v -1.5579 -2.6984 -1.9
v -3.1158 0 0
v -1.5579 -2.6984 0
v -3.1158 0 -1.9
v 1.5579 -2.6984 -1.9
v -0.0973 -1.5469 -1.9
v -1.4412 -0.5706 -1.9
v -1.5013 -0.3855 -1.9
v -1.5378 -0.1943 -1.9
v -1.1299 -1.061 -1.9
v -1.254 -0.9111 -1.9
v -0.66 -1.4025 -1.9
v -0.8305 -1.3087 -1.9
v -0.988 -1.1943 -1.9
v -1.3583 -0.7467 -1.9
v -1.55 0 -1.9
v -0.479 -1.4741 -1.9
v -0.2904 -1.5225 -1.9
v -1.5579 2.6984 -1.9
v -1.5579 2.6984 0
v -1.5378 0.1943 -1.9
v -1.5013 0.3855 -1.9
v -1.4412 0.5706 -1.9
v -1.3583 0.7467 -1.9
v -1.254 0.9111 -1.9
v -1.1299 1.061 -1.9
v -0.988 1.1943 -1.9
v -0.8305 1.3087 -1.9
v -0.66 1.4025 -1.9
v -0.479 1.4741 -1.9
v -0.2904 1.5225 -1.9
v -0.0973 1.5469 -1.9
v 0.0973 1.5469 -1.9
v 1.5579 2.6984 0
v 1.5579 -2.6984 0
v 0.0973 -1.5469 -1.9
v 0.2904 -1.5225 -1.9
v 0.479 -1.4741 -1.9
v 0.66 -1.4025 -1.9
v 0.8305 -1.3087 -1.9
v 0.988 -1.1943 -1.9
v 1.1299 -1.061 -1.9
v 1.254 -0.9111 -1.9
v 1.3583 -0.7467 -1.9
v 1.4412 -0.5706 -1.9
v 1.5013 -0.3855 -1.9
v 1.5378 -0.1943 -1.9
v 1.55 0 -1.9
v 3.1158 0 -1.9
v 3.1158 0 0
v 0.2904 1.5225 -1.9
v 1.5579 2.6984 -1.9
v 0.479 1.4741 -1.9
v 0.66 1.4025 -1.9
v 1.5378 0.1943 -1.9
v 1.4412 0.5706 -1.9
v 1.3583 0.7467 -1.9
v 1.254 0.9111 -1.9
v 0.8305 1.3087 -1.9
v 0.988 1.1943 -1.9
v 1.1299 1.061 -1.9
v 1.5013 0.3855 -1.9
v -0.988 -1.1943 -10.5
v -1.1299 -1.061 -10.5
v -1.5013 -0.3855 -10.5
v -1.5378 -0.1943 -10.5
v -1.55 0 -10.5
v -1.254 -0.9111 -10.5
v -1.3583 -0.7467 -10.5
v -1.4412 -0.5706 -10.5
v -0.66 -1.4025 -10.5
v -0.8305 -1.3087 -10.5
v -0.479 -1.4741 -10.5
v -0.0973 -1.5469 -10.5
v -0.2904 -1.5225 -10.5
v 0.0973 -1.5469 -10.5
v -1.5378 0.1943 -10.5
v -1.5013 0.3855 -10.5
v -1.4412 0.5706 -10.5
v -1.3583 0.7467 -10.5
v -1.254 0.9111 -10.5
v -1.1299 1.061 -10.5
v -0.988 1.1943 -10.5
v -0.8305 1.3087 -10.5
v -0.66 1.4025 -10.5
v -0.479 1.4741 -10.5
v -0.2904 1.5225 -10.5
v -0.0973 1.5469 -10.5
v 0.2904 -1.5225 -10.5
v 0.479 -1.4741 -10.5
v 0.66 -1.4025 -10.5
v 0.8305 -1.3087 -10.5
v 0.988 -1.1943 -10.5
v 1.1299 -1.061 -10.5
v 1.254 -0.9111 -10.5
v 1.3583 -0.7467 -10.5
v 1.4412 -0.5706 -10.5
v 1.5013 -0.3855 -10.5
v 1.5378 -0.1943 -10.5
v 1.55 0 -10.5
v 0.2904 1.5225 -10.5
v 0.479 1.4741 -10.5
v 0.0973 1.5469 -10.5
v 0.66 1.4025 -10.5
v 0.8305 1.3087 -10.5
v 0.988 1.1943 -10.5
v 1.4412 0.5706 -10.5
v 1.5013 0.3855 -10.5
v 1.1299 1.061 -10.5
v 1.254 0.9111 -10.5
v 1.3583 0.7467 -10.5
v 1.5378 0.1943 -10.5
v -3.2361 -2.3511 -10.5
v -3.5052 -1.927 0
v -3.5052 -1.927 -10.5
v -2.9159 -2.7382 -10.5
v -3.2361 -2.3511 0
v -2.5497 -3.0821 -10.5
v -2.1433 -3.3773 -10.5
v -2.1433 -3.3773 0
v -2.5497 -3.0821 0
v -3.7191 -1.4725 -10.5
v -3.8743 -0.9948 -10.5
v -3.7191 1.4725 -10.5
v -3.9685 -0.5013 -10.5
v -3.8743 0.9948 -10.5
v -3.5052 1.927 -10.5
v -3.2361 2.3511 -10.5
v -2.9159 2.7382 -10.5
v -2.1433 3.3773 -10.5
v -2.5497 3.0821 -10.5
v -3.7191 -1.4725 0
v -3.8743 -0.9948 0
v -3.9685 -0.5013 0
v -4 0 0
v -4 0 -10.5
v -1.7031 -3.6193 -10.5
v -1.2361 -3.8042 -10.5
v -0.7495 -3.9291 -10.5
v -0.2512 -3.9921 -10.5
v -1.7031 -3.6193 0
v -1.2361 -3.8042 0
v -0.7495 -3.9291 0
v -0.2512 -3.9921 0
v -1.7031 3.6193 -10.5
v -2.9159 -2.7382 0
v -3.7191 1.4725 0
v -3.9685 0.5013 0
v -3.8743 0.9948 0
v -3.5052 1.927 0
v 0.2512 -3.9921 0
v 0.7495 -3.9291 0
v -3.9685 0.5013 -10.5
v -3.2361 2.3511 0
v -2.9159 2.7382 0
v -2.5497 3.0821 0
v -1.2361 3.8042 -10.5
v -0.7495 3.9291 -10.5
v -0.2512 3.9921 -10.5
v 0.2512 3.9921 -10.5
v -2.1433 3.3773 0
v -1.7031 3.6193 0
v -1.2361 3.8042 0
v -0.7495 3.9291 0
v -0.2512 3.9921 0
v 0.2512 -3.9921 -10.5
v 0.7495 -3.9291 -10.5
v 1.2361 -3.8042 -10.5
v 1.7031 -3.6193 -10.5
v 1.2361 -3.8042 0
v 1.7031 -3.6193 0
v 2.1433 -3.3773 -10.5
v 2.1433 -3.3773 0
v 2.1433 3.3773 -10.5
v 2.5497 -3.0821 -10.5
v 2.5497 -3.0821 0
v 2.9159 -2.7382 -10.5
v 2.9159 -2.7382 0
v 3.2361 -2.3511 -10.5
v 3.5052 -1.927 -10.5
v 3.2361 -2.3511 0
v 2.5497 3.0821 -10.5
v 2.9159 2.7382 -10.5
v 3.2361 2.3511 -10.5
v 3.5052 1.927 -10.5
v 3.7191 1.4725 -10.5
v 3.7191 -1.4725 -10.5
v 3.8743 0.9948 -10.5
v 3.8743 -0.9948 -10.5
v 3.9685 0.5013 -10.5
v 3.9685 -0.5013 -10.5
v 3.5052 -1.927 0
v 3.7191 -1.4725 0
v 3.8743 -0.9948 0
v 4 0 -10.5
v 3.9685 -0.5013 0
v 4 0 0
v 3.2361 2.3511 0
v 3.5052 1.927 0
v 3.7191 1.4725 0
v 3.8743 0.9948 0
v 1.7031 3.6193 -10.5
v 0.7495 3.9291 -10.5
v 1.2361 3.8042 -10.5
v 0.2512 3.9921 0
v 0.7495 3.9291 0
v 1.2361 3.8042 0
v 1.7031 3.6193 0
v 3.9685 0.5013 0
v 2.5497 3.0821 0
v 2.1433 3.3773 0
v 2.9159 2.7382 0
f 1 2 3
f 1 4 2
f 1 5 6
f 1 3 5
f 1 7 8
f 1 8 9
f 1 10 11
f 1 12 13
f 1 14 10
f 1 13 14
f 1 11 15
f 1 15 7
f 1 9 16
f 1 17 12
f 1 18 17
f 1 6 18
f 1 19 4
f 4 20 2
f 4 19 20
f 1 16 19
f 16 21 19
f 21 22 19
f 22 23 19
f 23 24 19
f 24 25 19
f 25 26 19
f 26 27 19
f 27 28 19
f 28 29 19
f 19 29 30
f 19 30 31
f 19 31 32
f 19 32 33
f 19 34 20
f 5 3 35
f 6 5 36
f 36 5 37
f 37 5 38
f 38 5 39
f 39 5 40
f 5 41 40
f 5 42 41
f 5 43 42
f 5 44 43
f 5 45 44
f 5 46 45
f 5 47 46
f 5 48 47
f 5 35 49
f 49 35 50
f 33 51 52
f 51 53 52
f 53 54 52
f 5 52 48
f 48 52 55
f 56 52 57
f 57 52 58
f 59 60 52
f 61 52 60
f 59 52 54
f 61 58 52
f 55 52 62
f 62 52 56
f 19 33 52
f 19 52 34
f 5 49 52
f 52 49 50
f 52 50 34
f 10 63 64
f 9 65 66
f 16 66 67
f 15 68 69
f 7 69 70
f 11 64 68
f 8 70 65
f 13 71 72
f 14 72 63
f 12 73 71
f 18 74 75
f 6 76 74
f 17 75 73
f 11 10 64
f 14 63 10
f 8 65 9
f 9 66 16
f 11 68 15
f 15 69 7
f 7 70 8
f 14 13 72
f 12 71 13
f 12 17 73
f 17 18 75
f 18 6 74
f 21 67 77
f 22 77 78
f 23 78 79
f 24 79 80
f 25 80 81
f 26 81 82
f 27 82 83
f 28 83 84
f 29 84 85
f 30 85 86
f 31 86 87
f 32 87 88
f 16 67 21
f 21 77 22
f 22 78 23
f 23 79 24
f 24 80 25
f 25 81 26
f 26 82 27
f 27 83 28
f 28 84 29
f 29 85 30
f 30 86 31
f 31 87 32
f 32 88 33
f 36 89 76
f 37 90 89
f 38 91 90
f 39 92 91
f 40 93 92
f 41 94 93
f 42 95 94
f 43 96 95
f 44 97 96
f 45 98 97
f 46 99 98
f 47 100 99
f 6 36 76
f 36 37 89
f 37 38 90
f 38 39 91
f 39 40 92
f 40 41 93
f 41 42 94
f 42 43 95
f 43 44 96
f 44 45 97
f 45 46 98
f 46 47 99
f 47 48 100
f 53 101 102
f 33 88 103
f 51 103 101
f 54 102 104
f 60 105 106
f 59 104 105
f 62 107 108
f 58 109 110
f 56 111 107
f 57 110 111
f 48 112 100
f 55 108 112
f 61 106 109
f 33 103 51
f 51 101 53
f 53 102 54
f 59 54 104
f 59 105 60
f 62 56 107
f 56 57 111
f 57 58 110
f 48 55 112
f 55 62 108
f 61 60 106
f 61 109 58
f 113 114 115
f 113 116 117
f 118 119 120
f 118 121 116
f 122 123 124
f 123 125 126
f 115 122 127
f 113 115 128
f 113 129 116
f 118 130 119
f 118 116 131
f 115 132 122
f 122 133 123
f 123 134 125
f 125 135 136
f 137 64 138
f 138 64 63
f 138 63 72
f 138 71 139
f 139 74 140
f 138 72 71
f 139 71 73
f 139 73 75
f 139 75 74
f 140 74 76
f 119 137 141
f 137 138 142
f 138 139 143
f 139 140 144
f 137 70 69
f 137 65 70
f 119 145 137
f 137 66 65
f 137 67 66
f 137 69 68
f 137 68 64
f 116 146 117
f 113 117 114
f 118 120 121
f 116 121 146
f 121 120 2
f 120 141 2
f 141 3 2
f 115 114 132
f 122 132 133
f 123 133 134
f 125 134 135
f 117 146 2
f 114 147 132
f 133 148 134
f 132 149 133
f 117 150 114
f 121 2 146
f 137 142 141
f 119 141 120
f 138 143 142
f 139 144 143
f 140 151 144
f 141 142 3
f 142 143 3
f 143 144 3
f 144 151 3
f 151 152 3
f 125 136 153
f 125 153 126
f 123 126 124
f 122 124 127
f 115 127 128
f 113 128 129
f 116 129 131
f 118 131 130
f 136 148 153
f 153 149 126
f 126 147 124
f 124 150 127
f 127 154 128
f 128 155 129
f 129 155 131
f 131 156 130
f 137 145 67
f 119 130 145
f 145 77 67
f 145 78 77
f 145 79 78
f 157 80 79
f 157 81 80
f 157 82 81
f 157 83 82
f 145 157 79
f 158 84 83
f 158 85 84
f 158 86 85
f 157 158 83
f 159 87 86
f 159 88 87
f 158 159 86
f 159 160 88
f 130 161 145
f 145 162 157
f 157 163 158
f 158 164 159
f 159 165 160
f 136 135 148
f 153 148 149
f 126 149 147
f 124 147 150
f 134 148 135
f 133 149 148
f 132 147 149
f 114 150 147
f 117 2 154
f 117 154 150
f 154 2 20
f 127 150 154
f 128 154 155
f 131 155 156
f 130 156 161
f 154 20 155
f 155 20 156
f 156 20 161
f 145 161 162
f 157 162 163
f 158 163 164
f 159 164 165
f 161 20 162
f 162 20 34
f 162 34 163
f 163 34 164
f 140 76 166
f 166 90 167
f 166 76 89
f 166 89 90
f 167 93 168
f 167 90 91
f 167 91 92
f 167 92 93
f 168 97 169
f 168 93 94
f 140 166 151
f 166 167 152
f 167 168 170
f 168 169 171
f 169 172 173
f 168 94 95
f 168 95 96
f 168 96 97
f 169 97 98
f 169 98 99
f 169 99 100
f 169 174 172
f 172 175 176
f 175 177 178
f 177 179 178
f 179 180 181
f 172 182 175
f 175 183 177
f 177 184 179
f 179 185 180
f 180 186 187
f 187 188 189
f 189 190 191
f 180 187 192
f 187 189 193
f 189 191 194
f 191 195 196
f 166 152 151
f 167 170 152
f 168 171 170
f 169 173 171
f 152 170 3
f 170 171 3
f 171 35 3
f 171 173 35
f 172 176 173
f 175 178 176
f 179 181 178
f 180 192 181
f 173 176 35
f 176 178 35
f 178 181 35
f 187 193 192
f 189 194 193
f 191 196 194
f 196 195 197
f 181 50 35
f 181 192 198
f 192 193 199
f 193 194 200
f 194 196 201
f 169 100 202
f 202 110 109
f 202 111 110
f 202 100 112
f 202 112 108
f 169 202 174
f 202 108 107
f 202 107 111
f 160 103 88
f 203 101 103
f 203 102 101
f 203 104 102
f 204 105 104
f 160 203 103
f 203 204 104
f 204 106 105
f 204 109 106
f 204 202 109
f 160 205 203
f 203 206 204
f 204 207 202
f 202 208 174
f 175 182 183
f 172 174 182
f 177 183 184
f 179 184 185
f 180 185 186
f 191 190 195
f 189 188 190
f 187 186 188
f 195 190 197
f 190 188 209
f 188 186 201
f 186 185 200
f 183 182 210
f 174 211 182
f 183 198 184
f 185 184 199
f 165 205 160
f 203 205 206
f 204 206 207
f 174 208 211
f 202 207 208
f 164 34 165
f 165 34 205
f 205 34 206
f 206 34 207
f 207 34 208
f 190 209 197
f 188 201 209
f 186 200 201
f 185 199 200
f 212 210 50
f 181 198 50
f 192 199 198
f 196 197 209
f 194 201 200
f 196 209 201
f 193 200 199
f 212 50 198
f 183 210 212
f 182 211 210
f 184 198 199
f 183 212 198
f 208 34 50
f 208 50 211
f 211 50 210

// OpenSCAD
$fn = 50;

difference() {
	union() {
		translate(v = [0, 0, -10.5]) {
			cylinder(h = 13.5, r = 4.0);
		}
	}
	union() {
		translate(v = [0, 0, 0]) {
			rotate(a = [0, 0, 0]) {
				difference() {
					union() {
						translate(v = [0, 0, -1.9]) {
							linear_extrude(height = 1.9) {
								polygon(points = [[3.1158, 0.0], [1.5579000000000005, 2.698361953111554], [-1.5578999999999994, 2.6983619531115544], [-3.1158, 3.815754496783323e-16], [-1.5579000000000014, -2.6983619531115535], [1.557899999999998, -2.6983619531115552]]);
							}
						}
					}
					union();
				}
			}
		}
		#cylinder(h = 3, r = 5.0);
		#translate(v = [0, 0, -100.0]) {
			cylinder(h = 200, r = 1.55);
		}
	}
}
